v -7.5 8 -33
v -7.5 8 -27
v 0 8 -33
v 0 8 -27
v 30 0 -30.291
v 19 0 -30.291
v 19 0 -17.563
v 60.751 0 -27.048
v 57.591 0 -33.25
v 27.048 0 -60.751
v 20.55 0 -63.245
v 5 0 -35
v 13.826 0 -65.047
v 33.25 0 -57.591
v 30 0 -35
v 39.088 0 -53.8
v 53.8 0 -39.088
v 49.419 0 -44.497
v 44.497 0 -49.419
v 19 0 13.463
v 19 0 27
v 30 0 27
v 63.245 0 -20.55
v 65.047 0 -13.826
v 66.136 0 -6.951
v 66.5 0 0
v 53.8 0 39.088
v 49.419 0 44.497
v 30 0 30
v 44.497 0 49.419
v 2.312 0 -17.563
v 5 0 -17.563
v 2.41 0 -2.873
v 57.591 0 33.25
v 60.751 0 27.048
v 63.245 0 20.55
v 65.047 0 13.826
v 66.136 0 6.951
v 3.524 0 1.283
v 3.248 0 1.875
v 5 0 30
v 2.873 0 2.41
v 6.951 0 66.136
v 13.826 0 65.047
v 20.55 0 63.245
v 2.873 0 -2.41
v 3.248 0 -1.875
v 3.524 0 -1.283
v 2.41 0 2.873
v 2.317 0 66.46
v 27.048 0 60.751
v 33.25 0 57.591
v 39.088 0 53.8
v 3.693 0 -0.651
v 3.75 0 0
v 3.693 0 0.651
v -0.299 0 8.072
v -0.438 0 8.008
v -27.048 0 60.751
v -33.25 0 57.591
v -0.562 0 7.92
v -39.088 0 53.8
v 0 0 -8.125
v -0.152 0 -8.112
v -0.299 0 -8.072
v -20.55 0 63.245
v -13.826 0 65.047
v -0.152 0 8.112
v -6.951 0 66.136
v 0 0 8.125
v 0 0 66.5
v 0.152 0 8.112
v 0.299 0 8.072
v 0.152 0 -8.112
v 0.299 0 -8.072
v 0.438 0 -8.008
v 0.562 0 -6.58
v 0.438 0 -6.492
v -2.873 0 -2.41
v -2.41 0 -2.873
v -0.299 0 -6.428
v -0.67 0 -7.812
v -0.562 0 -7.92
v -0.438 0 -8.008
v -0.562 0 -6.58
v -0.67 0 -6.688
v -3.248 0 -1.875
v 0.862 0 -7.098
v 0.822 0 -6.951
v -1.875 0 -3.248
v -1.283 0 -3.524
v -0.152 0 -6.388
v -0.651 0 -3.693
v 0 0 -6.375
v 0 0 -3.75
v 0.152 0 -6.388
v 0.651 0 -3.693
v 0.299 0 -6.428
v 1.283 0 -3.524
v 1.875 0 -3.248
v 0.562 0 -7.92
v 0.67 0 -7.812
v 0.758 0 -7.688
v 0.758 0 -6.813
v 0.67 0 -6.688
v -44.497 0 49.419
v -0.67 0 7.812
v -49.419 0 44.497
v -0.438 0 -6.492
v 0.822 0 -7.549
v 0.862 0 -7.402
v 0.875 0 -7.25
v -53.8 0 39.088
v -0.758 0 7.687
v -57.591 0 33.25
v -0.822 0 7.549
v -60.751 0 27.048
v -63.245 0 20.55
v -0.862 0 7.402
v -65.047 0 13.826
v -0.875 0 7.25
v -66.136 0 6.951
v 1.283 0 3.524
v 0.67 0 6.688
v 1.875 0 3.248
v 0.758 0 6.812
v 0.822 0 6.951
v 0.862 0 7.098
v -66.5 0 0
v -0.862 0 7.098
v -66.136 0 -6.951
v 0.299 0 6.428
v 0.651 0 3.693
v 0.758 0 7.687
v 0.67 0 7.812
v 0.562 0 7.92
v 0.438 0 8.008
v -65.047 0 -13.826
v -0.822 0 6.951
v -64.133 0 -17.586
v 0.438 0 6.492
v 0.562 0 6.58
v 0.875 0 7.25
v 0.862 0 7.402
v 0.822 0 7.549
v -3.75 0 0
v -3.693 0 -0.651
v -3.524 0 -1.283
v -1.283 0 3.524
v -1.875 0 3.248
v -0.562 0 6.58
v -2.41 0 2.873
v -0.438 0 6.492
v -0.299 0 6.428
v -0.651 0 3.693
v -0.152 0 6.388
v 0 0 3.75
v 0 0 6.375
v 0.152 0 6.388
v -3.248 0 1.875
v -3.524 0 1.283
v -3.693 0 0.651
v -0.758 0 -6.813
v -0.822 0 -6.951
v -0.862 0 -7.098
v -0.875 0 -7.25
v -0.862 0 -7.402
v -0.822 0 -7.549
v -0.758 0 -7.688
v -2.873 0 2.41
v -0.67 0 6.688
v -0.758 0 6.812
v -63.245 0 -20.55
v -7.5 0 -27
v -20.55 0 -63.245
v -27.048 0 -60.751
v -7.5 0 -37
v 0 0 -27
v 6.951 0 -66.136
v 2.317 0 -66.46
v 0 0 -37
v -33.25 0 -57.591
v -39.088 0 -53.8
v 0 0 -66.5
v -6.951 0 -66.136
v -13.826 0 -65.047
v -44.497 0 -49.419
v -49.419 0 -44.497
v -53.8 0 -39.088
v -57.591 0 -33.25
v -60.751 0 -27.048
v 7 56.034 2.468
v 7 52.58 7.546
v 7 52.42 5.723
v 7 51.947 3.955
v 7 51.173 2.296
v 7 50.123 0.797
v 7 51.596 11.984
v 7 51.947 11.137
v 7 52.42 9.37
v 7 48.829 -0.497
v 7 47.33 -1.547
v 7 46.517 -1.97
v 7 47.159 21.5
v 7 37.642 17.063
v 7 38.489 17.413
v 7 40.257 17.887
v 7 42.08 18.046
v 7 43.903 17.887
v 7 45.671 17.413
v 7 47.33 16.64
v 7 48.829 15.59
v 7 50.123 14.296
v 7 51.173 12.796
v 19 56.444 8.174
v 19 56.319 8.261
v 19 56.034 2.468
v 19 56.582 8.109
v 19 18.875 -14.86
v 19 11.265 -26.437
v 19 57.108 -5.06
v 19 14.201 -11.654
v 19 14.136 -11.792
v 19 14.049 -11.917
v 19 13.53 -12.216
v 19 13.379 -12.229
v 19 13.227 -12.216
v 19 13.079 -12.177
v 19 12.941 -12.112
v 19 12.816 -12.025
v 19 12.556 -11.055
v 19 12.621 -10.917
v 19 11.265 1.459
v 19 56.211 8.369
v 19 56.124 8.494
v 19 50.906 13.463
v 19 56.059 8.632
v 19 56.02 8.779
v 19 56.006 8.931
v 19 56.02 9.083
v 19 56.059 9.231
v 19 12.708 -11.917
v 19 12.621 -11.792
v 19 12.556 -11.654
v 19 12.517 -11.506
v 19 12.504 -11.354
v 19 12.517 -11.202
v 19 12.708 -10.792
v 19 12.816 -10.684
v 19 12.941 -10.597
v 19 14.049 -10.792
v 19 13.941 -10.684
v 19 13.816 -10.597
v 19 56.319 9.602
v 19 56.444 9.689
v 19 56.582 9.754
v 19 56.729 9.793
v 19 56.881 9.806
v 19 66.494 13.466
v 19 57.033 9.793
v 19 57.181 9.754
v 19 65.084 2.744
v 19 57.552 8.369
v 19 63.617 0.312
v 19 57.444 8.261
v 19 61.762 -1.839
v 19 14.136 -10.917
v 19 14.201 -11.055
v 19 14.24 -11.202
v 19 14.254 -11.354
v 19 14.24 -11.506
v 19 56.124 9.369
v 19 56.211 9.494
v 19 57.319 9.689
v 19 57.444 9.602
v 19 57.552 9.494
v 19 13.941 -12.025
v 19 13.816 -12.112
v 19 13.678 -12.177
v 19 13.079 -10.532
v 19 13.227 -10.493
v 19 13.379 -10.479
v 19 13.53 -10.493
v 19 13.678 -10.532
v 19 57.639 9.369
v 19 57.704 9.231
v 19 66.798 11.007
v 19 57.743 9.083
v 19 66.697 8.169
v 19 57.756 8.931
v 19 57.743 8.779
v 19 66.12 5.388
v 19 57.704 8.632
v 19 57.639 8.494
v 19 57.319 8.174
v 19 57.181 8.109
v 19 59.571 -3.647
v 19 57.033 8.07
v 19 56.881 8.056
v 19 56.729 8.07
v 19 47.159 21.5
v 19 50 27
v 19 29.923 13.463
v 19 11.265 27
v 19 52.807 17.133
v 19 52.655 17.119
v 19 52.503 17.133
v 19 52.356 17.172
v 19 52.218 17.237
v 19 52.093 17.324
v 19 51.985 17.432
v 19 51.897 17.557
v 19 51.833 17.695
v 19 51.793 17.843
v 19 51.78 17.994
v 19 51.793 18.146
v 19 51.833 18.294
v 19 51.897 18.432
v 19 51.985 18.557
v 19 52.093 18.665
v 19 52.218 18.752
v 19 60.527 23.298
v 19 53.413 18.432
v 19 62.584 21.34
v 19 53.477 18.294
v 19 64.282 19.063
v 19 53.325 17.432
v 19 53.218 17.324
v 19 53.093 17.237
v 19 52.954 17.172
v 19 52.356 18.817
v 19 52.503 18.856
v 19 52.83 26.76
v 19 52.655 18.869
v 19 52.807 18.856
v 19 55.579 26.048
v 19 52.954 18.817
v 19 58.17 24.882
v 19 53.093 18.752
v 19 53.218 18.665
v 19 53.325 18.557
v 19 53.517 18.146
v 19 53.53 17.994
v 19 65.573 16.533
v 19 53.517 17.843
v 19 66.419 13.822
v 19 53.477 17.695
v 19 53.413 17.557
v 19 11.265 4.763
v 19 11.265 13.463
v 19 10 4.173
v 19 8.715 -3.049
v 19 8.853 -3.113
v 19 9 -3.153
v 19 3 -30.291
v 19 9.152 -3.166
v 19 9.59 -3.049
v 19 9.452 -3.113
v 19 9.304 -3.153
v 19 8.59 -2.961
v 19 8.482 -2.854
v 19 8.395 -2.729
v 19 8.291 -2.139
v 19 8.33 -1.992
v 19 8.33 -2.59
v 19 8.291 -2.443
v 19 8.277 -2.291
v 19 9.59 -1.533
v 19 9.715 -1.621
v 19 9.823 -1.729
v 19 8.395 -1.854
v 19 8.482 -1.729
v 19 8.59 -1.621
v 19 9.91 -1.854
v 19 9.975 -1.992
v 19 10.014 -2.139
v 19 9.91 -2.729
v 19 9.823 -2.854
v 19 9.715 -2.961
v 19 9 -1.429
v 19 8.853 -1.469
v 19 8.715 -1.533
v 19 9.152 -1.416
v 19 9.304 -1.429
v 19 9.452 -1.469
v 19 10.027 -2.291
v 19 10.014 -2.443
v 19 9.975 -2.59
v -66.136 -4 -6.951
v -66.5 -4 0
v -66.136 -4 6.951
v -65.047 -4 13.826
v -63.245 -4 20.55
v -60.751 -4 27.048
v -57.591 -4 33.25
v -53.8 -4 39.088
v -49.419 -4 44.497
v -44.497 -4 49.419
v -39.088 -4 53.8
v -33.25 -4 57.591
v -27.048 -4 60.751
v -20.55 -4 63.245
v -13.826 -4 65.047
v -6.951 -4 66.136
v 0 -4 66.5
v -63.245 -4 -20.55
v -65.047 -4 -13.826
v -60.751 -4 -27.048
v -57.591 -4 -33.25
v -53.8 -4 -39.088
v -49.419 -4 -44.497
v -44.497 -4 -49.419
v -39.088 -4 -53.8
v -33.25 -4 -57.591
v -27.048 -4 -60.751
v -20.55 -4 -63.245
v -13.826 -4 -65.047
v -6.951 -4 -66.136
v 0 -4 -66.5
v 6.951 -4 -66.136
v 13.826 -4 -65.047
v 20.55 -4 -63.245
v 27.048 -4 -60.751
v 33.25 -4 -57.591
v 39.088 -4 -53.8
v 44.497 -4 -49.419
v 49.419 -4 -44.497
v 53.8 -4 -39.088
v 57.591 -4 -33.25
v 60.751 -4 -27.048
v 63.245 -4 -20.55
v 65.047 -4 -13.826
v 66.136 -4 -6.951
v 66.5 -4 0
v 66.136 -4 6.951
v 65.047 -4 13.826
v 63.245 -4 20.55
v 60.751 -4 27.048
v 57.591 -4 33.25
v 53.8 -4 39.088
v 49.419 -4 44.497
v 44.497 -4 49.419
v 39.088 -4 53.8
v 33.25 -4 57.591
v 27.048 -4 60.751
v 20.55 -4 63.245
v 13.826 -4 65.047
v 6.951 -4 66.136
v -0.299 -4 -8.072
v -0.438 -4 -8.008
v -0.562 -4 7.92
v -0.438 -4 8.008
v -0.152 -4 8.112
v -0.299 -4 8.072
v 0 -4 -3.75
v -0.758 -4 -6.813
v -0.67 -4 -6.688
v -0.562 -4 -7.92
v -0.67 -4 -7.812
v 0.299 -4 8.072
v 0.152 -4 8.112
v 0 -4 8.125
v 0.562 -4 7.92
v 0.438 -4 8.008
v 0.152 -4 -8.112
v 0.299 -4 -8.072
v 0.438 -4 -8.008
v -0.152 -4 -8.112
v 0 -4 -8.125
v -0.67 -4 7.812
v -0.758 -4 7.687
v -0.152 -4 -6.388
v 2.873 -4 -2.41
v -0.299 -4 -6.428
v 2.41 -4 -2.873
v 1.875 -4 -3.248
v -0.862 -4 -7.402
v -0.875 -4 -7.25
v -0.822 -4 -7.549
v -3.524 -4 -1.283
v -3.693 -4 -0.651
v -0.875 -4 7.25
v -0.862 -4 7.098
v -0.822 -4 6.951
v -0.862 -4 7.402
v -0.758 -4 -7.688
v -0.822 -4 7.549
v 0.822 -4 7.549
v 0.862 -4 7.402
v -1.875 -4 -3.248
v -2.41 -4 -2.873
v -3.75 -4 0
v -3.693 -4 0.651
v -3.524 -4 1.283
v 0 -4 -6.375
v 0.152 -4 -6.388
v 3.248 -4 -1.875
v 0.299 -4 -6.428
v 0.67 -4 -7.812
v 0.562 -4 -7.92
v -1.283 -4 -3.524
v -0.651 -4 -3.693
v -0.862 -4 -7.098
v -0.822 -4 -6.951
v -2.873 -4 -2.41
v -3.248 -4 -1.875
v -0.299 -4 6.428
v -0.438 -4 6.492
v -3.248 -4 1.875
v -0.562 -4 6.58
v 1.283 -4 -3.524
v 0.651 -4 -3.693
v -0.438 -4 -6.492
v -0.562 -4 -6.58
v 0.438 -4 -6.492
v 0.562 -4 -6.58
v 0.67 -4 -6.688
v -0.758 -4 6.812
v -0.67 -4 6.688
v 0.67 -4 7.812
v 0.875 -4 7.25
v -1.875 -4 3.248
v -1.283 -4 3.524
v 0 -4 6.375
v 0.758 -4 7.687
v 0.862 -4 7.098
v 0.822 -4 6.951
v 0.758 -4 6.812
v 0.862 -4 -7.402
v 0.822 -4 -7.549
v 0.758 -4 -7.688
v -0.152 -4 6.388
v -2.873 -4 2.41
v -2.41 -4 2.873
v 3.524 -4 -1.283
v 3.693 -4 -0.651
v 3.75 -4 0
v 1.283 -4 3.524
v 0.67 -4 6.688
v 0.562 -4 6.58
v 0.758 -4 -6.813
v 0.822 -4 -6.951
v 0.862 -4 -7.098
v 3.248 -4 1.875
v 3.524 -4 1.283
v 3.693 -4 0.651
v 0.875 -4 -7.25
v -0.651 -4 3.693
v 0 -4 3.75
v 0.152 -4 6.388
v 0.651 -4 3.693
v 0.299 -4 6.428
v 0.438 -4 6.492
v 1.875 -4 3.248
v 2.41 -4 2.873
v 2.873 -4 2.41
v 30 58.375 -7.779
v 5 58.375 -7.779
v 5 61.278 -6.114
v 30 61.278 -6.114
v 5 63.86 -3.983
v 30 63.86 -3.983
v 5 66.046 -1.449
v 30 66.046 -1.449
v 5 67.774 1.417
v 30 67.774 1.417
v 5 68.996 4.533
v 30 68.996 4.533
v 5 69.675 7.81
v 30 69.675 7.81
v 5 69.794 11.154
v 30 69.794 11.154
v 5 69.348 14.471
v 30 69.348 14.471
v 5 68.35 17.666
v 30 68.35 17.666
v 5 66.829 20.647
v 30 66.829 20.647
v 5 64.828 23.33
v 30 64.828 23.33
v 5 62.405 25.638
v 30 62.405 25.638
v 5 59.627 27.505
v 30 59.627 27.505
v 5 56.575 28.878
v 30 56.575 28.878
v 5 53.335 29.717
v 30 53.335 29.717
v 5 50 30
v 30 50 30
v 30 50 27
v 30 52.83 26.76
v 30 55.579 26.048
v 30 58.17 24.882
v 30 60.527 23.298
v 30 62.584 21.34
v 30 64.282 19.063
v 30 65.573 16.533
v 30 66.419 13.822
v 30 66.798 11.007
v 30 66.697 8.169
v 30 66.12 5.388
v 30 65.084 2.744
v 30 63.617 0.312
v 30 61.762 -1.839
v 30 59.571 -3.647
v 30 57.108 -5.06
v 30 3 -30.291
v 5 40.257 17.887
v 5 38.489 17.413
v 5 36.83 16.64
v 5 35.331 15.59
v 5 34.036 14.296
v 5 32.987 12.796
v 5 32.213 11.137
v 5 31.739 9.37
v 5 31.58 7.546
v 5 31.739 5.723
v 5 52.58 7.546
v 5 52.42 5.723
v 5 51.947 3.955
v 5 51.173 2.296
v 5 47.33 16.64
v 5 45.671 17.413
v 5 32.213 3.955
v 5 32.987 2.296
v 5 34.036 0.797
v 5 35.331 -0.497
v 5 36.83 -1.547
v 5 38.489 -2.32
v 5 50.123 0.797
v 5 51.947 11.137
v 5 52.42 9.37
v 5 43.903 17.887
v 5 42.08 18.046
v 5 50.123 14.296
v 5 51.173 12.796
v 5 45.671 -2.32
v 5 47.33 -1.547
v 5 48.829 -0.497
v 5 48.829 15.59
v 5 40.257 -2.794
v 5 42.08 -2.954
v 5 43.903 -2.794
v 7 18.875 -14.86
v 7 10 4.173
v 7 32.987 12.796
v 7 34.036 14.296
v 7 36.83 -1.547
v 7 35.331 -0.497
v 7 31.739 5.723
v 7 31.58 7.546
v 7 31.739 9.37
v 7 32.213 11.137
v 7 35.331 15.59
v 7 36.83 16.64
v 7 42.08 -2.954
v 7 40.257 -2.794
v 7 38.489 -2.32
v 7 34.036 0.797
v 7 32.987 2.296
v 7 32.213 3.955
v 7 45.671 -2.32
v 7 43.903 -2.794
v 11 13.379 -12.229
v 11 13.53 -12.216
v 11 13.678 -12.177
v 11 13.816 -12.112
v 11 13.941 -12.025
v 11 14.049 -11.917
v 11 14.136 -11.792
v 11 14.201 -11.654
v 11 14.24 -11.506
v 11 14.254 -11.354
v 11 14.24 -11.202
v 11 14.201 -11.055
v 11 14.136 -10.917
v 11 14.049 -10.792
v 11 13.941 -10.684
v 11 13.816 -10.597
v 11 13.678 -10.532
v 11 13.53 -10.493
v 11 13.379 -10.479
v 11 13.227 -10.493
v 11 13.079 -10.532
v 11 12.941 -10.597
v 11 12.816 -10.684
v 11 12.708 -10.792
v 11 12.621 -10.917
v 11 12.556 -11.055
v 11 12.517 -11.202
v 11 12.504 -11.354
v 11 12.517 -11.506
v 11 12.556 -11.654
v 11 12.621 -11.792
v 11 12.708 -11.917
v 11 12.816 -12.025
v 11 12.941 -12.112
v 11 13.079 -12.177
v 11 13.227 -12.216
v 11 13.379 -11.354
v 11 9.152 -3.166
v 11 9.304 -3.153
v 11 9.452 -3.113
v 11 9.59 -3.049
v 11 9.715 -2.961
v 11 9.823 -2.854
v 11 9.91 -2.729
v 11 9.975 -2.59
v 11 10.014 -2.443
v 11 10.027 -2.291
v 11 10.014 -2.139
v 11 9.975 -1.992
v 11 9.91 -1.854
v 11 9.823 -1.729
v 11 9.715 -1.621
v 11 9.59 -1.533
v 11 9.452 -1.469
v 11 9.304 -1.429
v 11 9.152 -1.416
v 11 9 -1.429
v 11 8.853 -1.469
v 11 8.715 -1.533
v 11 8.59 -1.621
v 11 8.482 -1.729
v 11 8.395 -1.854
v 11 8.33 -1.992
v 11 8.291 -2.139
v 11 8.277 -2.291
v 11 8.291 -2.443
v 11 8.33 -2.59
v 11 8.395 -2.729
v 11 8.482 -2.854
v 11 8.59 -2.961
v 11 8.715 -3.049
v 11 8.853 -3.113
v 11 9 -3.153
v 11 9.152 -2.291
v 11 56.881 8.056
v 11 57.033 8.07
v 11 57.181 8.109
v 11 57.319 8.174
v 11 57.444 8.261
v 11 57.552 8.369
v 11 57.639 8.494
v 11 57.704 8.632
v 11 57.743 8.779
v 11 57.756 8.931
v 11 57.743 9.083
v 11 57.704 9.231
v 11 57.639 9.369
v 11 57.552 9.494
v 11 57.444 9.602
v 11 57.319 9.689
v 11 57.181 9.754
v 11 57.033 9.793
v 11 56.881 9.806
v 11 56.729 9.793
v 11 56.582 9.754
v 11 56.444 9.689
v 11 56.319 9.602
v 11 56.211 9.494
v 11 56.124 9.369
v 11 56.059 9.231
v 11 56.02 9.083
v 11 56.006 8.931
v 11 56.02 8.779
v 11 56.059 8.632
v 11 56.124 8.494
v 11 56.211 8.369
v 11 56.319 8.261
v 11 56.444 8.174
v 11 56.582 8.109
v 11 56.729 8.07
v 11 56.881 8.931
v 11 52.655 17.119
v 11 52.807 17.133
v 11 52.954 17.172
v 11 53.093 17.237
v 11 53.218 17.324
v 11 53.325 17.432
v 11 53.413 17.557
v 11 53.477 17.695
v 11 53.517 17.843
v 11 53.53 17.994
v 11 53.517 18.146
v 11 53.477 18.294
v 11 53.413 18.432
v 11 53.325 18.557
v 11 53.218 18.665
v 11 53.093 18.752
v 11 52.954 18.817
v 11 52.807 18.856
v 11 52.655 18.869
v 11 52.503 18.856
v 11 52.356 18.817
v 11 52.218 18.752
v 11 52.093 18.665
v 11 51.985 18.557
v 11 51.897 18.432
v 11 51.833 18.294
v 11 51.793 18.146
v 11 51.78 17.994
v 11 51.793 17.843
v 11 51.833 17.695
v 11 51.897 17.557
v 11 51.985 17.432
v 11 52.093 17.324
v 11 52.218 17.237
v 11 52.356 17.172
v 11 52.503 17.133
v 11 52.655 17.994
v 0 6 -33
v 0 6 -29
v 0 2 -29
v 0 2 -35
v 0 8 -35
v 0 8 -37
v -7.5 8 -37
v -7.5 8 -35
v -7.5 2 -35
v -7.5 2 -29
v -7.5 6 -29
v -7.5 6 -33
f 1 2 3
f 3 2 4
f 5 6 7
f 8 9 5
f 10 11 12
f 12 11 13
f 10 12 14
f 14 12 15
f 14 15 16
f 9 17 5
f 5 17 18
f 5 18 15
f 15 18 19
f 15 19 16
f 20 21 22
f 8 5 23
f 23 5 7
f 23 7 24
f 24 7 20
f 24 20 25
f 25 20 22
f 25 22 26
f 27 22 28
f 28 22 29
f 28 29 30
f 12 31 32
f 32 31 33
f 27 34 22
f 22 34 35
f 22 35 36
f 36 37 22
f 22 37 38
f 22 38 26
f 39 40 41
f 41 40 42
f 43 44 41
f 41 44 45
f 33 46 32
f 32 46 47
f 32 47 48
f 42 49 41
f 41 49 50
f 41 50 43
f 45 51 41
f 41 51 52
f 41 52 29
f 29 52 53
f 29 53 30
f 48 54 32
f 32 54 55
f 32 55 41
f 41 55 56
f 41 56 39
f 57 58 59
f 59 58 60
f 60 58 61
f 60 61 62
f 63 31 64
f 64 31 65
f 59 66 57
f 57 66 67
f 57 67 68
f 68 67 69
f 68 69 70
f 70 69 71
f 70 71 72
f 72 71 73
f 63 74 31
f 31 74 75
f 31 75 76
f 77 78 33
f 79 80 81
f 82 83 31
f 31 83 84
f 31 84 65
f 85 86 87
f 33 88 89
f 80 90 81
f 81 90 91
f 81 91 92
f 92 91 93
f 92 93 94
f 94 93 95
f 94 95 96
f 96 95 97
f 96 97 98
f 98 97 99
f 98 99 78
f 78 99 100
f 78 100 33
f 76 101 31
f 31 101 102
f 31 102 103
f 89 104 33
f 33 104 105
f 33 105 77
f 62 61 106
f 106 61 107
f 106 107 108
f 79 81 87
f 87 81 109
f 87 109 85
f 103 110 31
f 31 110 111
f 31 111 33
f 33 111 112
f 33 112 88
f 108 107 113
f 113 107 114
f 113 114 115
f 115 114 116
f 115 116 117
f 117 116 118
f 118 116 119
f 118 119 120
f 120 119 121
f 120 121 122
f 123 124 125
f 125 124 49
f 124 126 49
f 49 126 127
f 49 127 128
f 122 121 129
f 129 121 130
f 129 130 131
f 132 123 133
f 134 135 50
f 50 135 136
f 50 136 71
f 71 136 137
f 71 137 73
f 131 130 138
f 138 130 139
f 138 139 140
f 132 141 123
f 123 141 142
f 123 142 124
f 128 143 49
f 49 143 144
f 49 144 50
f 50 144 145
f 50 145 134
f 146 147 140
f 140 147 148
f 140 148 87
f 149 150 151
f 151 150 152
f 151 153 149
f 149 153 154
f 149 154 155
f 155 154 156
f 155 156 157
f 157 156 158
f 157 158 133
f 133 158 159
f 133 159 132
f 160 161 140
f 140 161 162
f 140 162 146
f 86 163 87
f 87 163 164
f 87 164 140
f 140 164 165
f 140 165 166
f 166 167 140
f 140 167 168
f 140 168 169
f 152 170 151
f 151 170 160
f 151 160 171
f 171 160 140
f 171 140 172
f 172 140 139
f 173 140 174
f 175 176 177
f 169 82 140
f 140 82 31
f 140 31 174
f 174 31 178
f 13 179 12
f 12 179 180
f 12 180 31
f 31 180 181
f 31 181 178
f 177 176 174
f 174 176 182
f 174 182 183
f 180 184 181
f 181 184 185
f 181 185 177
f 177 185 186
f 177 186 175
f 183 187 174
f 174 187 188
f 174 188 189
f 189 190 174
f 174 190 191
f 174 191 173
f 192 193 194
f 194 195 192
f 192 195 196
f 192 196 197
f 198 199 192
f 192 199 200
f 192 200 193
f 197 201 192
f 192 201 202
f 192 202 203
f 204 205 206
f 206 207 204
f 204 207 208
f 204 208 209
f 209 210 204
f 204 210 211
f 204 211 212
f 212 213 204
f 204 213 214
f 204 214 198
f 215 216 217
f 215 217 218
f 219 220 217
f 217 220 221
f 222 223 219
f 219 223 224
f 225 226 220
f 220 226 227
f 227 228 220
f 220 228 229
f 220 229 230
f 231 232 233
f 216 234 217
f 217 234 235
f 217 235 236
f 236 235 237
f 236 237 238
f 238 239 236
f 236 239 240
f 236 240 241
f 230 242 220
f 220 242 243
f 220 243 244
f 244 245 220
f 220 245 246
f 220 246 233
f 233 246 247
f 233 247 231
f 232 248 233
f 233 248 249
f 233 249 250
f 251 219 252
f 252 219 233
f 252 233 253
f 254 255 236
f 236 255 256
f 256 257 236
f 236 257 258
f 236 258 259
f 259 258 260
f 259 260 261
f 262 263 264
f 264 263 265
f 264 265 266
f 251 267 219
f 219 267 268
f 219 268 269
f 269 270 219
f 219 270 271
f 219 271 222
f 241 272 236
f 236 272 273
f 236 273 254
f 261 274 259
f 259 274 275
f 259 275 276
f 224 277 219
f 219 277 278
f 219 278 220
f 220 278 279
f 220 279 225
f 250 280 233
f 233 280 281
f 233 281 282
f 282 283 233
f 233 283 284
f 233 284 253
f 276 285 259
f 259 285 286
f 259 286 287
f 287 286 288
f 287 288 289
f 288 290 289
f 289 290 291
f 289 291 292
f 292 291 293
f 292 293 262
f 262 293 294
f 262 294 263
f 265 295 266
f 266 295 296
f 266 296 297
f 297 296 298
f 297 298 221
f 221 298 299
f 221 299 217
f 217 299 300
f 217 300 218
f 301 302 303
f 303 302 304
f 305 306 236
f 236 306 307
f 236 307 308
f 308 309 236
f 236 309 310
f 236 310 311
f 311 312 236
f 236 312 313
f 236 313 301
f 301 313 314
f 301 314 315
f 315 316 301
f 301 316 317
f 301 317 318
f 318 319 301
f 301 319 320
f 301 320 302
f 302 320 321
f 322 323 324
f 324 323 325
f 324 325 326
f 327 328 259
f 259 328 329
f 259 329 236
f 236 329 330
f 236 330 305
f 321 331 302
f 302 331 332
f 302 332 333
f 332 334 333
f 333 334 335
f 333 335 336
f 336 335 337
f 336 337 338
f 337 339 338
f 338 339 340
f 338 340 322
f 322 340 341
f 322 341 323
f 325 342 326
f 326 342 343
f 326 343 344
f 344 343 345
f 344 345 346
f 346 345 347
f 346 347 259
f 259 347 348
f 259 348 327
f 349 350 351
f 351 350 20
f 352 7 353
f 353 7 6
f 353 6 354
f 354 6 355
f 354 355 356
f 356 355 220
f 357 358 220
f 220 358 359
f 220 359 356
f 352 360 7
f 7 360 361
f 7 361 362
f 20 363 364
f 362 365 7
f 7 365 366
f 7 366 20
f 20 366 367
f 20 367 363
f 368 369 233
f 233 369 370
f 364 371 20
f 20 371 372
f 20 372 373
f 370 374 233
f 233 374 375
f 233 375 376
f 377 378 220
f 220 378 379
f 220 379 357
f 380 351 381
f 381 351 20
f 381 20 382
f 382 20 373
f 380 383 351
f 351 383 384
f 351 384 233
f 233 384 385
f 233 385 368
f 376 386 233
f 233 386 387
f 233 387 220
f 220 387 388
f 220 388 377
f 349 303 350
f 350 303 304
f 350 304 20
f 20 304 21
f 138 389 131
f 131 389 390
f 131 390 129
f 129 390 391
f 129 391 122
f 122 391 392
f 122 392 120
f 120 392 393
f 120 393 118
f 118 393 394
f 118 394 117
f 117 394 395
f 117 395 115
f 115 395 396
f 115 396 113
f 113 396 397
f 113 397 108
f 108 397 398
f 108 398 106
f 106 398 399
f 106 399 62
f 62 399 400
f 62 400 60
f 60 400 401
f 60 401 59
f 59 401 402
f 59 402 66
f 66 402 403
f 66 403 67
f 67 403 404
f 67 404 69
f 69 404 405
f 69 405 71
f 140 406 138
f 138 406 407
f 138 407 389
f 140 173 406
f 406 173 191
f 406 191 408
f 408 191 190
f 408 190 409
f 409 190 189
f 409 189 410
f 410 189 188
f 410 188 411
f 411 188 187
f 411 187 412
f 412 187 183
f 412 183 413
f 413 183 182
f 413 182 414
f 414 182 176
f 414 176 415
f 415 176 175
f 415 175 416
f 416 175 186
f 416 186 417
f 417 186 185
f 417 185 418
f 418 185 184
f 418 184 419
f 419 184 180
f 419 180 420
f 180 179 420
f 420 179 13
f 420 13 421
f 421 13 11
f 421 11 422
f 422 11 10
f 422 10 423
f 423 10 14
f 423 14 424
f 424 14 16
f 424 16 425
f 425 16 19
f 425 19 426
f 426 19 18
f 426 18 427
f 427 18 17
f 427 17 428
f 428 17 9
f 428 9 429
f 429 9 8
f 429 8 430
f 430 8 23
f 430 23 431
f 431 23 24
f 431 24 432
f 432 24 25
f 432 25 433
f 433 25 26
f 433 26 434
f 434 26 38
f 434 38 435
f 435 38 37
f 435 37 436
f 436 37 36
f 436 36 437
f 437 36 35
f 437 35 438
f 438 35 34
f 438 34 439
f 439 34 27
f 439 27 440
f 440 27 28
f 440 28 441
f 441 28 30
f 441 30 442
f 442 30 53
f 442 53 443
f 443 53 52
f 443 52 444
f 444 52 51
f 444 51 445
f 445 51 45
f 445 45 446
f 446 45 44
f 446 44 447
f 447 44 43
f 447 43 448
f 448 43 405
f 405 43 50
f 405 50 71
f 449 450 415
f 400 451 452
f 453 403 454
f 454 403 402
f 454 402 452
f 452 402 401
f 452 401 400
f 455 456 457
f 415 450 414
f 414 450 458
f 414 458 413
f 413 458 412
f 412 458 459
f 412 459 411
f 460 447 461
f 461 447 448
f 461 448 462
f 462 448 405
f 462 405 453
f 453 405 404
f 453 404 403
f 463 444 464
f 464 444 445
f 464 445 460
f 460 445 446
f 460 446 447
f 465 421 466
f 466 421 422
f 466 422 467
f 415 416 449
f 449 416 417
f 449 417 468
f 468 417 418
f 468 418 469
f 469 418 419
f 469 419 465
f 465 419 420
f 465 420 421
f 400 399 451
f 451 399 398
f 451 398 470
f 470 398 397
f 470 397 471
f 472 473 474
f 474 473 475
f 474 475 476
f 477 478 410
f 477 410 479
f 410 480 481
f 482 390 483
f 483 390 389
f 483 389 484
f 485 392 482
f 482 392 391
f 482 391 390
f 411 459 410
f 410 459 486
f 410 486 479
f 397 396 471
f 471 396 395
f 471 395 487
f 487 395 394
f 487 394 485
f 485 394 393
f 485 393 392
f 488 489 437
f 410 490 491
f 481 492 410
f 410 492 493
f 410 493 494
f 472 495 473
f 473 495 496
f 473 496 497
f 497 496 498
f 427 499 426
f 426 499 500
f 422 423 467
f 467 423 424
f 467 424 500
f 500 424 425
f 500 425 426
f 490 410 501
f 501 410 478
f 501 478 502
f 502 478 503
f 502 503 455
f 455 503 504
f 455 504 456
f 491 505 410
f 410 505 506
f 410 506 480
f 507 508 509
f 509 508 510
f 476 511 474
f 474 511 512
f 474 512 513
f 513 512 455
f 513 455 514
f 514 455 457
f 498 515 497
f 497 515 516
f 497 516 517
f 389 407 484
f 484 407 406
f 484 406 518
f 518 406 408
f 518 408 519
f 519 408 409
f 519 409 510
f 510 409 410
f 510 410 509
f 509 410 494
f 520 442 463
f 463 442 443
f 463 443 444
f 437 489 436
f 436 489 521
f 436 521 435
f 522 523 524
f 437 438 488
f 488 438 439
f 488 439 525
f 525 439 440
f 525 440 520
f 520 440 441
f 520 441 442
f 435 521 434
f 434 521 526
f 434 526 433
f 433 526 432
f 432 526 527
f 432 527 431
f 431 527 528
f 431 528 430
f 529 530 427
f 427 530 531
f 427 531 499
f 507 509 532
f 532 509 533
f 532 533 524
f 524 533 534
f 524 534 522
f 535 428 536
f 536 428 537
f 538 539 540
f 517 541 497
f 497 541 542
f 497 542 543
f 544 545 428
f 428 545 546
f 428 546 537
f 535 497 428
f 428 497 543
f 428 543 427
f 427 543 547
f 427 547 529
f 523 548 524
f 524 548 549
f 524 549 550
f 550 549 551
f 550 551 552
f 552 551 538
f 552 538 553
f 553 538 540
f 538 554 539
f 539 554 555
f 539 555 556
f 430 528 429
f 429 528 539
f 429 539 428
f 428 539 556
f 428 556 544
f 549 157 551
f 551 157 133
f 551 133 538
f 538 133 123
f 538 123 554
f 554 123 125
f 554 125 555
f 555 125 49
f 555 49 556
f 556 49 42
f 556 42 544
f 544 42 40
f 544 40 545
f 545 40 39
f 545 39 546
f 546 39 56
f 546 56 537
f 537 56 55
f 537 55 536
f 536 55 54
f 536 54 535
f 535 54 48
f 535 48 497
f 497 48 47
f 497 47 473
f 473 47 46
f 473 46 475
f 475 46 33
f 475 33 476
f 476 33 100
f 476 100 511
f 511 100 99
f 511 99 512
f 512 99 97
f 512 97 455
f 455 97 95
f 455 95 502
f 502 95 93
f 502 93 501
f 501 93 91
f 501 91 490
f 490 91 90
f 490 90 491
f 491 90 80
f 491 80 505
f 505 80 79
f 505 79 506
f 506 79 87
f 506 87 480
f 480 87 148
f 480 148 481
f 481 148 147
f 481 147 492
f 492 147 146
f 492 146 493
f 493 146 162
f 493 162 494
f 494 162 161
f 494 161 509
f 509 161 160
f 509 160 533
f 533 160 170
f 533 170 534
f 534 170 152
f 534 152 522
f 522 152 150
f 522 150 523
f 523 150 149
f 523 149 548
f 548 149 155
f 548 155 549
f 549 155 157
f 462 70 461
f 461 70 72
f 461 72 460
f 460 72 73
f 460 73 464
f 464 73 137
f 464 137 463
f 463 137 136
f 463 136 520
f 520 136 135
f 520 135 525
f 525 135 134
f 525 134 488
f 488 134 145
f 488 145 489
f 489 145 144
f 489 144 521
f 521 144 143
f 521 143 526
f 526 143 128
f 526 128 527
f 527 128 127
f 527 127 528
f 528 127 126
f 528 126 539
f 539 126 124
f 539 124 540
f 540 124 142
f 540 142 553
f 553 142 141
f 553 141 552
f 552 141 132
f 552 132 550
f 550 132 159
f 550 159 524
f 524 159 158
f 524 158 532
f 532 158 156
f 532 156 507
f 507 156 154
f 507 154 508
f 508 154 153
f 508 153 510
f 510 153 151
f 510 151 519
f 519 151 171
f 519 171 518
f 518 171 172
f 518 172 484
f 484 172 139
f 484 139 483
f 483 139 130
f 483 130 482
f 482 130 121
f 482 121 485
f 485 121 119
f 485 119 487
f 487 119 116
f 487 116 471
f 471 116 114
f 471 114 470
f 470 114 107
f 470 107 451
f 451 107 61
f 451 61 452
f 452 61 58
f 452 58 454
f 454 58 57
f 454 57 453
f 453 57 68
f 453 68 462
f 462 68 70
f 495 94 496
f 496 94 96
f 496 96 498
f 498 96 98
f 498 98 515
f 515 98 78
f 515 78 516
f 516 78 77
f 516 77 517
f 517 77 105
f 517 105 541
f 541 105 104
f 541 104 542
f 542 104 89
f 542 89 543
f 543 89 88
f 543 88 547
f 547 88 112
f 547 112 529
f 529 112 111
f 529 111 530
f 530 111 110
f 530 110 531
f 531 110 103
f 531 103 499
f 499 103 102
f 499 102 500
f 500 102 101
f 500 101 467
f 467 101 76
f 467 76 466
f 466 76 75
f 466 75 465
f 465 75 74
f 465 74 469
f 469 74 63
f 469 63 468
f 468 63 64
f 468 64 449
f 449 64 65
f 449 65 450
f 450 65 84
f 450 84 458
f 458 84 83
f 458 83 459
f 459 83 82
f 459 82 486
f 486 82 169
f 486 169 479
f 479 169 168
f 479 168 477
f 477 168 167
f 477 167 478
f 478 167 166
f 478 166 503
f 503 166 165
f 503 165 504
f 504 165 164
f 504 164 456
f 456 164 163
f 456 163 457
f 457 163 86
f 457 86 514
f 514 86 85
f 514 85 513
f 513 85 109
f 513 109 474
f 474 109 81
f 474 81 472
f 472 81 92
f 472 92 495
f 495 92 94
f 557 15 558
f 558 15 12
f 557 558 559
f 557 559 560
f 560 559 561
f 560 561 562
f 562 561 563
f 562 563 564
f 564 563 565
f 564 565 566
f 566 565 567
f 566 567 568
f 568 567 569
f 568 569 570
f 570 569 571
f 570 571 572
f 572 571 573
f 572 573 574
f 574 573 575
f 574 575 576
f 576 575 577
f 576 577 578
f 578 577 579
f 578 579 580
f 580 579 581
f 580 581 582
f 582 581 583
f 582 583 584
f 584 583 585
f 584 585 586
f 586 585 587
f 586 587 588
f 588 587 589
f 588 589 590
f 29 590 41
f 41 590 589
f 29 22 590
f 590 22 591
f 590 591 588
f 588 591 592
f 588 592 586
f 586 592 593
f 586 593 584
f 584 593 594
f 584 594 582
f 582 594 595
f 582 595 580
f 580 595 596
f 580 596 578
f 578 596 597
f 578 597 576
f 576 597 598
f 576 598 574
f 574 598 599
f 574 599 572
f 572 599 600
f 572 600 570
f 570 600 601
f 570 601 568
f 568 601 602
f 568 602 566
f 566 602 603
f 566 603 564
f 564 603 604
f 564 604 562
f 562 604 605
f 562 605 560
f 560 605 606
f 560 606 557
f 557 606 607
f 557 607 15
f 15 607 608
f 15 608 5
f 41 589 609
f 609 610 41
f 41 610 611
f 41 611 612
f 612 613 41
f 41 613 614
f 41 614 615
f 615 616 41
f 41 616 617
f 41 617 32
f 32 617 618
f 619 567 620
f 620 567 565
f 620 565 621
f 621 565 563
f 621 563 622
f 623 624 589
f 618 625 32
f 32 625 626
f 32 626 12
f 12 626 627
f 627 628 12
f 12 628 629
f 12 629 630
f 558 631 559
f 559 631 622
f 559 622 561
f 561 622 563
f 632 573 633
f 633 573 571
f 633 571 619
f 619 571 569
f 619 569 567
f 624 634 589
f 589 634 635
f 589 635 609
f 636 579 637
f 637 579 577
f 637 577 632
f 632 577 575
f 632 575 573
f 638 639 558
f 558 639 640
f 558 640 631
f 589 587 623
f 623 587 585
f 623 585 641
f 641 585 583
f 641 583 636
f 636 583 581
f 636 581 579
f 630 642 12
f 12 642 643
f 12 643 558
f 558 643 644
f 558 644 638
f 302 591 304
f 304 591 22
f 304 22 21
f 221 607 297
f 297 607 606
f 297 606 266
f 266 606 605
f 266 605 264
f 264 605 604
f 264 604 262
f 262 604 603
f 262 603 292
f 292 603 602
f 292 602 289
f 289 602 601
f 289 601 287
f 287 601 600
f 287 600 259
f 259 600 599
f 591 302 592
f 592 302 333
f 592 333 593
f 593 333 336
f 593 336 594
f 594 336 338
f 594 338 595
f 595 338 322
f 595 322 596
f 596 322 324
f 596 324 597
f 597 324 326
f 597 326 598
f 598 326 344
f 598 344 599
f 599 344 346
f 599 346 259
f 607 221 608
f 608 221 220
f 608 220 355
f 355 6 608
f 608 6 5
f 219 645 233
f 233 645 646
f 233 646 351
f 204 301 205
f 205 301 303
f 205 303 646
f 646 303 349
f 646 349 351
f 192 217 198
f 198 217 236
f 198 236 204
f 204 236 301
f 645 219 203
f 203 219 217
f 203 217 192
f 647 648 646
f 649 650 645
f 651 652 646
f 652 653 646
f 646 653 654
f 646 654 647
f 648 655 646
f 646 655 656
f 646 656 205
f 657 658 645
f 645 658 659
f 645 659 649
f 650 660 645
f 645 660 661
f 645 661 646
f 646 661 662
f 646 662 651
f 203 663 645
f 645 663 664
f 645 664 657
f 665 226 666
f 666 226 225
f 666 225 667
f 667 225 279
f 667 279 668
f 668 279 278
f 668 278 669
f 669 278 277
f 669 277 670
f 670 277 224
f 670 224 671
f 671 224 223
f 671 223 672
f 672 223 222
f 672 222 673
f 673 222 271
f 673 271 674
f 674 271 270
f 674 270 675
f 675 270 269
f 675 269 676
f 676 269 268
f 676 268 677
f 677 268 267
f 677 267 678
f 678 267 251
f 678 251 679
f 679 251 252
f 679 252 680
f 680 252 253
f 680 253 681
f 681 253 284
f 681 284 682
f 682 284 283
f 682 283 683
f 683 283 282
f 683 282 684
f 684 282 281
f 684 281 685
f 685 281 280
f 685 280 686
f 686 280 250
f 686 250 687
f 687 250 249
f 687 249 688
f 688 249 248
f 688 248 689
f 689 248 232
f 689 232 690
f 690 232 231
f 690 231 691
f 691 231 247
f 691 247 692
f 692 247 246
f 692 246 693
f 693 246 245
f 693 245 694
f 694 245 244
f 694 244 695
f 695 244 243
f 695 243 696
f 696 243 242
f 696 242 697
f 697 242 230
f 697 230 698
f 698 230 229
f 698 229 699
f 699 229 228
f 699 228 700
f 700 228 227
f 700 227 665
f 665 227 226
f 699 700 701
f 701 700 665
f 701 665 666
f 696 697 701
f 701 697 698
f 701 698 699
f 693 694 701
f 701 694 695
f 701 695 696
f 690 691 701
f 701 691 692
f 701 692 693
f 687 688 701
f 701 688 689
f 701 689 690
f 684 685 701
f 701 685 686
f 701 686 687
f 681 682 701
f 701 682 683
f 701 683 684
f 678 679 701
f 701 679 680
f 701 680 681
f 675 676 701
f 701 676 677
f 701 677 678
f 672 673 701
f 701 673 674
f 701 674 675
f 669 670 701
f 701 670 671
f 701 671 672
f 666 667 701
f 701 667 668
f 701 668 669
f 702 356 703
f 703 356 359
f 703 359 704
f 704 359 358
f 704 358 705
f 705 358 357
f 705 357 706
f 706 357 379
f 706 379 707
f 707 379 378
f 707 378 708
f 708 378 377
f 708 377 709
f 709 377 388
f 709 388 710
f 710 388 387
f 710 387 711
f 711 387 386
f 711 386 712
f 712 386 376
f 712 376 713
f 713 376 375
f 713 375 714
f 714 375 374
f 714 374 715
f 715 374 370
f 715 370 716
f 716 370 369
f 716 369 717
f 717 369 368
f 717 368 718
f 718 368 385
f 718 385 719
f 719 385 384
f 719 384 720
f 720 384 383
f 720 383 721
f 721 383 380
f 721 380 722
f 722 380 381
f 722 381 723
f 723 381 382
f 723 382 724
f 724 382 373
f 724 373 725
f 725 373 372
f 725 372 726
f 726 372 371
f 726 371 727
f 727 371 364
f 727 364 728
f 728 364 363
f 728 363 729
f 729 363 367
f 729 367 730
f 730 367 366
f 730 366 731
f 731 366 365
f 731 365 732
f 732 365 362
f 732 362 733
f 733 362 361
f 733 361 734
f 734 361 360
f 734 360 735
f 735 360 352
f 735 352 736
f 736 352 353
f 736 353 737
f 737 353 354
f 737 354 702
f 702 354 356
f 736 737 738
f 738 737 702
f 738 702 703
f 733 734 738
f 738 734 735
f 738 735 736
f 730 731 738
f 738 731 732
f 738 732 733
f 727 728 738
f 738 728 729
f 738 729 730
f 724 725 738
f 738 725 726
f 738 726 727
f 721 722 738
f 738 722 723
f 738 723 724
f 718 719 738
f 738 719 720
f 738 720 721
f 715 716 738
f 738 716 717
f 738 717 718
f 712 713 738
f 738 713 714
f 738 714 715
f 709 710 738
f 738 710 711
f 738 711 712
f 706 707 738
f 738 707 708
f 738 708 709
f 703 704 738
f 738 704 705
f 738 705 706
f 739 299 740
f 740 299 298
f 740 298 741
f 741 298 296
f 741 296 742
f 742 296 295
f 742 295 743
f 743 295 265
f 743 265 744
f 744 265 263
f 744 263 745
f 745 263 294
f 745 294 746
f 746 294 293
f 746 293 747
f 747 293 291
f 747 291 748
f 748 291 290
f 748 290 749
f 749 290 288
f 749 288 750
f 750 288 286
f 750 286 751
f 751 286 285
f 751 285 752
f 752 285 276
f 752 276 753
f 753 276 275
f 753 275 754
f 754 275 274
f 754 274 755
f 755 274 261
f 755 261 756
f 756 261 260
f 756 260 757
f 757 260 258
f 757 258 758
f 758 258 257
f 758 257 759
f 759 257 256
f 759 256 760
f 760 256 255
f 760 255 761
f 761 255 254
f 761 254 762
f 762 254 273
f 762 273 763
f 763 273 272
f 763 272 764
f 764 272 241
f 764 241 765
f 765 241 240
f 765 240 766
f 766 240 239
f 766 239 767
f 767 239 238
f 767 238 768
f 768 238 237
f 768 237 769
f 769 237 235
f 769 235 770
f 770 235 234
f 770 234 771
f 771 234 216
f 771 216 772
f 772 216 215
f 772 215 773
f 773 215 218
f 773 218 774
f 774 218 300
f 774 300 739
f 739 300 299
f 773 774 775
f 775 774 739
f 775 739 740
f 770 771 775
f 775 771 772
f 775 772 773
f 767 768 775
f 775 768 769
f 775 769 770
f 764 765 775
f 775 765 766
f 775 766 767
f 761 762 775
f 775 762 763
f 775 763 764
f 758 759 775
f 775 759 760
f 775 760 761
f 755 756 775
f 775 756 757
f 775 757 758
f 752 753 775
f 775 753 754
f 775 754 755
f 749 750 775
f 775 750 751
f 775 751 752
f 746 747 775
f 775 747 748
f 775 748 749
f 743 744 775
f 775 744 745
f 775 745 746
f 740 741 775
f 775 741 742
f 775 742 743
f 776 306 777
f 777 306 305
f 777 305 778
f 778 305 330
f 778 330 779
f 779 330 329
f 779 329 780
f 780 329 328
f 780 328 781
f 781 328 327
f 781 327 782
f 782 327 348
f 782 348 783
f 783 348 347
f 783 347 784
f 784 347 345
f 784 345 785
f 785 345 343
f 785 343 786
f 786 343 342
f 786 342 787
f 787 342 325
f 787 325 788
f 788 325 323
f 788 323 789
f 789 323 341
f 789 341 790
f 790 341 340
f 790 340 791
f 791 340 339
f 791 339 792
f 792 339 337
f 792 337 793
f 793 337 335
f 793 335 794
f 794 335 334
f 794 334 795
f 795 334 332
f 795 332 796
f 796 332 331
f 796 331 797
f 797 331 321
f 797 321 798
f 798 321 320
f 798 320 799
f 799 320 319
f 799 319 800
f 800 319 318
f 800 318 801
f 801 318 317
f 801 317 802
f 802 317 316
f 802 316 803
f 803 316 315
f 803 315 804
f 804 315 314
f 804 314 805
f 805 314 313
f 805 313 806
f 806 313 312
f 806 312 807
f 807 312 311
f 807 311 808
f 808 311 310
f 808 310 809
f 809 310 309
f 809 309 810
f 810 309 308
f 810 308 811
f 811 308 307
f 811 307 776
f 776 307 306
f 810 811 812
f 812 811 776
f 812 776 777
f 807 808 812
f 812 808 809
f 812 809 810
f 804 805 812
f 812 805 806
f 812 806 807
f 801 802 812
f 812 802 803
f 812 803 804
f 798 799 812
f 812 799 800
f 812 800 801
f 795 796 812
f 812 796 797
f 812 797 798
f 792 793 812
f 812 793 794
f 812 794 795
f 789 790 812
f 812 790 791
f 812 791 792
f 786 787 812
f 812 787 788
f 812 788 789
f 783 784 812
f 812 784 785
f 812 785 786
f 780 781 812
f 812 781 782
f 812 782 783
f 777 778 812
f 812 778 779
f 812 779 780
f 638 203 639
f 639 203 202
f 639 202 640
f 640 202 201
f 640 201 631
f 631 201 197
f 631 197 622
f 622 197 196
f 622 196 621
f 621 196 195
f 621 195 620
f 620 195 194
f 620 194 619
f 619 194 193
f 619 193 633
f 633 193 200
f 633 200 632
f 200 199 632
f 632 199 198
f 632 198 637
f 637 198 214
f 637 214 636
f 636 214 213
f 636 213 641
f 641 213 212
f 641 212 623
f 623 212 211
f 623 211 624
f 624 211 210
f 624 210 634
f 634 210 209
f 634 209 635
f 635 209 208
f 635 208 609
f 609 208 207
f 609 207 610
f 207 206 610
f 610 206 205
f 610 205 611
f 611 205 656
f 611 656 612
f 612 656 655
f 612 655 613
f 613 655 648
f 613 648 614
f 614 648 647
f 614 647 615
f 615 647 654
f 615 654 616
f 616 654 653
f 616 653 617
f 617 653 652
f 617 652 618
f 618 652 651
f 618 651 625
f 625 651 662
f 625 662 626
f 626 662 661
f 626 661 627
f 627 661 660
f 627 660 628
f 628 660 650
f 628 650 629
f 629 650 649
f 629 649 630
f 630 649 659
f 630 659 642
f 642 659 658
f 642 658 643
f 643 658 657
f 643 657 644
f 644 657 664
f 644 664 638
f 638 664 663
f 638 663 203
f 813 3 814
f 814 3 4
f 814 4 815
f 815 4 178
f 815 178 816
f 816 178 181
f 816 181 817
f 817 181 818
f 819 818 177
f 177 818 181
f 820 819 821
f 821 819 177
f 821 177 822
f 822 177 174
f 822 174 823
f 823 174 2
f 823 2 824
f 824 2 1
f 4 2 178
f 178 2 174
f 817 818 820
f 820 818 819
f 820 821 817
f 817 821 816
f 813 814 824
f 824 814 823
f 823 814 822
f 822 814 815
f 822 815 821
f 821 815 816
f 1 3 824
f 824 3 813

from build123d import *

# Parameters (mm, degrees)
SKETCH1_R           = 66.5
SKETCH1_R_2         = 3.75
SKETCH1_R_3         = 0.875
BOSS_EXTRUDE1_DEPTH = 4
BOSS_EXTRUDE2_DEPTH = 25
CUT_EXTRUDE1_DEPTH  = 11
CUT_EXTRUDE2_DEPTH  = 12
SKETCH6_3_R         = 0.875
CUT_EXTRUDE3_DEPTH  = 8
SKETCH7_R           = 10.5
CUT_EXTRUDE4_DEPTH  = 122.239616981
SKETCH8_W           = 7.5
SKETCH8_H           = 10
BOSS_EXTRUDE3_DEPTH = 8
SKETCH9_W           = 6
SKETCH9_H           = 4
CUT_EXTRUDE5_DEPTH  = 8
CUT_EXTRUDE6_REACH  = 114.543
SKETCH10_W          = 7.5
SKETCH10_H          = 2


with BuildPart() as part:
    # Sketch1 → Boss-Extrude1 (new body)
    with BuildSketch(Plane(origin=(0, 0, 0), x_dir=(1, 0, 0), z_dir=(0, 1, 0))):
        Circle(SKETCH1_R)
        Circle(SKETCH1_R_2, mode=Mode.SUBTRACT)
        with Locations((0, -7.25)):
            Circle(SKETCH1_R_3, mode=Mode.SUBTRACT)
        with Locations((0, 7.25)):
            Circle(SKETCH1_R_3, mode=Mode.SUBTRACT)
    extrude(amount=-BOSS_EXTRUDE1_DEPTH)

    # Sketch4 → Boss-Extrude2 (add)
    with BuildSketch(Plane(origin=(5, 0, 0), x_dir=(0, 0, -1), z_dir=(1, 0, 0))):
        with BuildLine():
            Line((0, 0), (35, 0))
            Line((35, 0), (7.77909307, 58.375423293))
            ThreePointArc((7.77909307, 58.375423293), (-14.471447396, 69.348175551), (-30, 50))
            Line((-30, 50), (-30, 0))
            Line((-30, 0), (0, 0))
        make_face()
    extrude(amount=BOSS_EXTRUDE2_DEPTH)

    # Sketch5 → Cut-Extrude1 (cut)
    with BuildSketch(Plane(origin=(30, 0, 0), x_dir=(0, 0, -1), z_dir=(1, 0, 0))):
        with BuildLine():
            Line((-27, 3), (-27, 0))
            Line((-27, 0), (30.290943269, 0))
            Line((30.290943269, 0), (30.290943269, 3))
            Line((30.290943269, 3), (5.060169709, 57.107568508))
            ThreePointArc((5.060169709, 57.107568508), (-13.822128554, 66.419287529), (-27, 50))
            Line((-27, 50), (-27, 3))
        make_face()
    extrude(amount=-CUT_EXTRUDE1_DEPTH, mode=Mode.SUBTRACT)

    # Sketch6 → Cut-Extrude2 (cut)
    with BuildSketch(Plane(origin=(19, 0, 0), x_dir=(0, 0, -1), z_dir=(1, 0, 0))):
        Polygon((-21.5, 47.158619269), (-4.172651269, 10), (14.859812259, 18.874983497), (-2.467536472, 56.033602765), align=None)
    extrude(amount=-CUT_EXTRUDE2_DEPTH, mode=Mode.SUBTRACT)

    # Sketch6<3> → Cut-Extrude3 (cut)
    with BuildSketch(Plane(origin=(19, 0, 0), x_dir=(0, 0, -1), z_dir=(1, 0, 0))):
        with Locations((-17.994471087, 52.655096963)):
            Circle(SKETCH6_3_R)
        with Locations((-8.931393217, 56.88127958)):
            Circle(SKETCH6_3_R)
        with Locations((11.354283347, 13.378505802)):
            Circle(SKETCH6_3_R)
        with Locations((2.291205476, 9.152323185)):
            Circle(SKETCH6_3_R)
    extrude(amount=-CUT_EXTRUDE3_DEPTH, mode=Mode.SUBTRACT)

    # Sketch7 → Cut-Extrude4 (cut, through all)
    with BuildSketch(Plane(origin=(7, 0, 0), x_dir=(0, 0, -1), z_dir=(1, 0, 0))):
        with Locations((-7.546276488, 42.079879253)):
            Circle(SKETCH7_R)
    extrude(amount=-CUT_EXTRUDE4_DEPTH, mode=Mode.SUBTRACT)

    # Sketch8 → Boss-Extrude3 (add)
    with BuildSketch(Plane(origin=(0, 0, 0), x_dir=(1, 0, 0), z_dir=(0, 1, 0))):
        with Locations((-3.75, 32)):
            Rectangle(SKETCH8_W, SKETCH8_H)
    extrude(amount=BOSS_EXTRUDE3_DEPTH)

    # Sketch9 → Cut-Extrude5 (cut)
    with BuildSketch(Plane.ZY.offset(7.5)):
        with Locations((-32, 4)):
            Rectangle(SKETCH9_W, SKETCH9_H)
    extrude(amount=-CUT_EXTRUDE5_DEPTH, mode=Mode.SUBTRACT)

    # Sketch10 → Cut-Extrude6 (cut, up to next)
    with BuildSketch(Plane(origin=(0, 8, 0), x_dir=(1, 0, 0), z_dir=(0, 1, 0)), mode=Mode.PRIVATE) as cut_extrude6_sk1:
        with Locations((-3.75, 34)):
            Rectangle(SKETCH10_W, SKETCH10_H)
    cut_extrude6_tool1 = extrude(cut_extrude6_sk1.sketch, amount=-CUT_EXTRUDE6_REACH, mode=Mode.PRIVATE) & part.part
    add(cut_extrude6_tool1.solids().sort_by_distance((-3.75, 8, -34))[0], mode=Mode.SUBTRACT)


solid = part.part
